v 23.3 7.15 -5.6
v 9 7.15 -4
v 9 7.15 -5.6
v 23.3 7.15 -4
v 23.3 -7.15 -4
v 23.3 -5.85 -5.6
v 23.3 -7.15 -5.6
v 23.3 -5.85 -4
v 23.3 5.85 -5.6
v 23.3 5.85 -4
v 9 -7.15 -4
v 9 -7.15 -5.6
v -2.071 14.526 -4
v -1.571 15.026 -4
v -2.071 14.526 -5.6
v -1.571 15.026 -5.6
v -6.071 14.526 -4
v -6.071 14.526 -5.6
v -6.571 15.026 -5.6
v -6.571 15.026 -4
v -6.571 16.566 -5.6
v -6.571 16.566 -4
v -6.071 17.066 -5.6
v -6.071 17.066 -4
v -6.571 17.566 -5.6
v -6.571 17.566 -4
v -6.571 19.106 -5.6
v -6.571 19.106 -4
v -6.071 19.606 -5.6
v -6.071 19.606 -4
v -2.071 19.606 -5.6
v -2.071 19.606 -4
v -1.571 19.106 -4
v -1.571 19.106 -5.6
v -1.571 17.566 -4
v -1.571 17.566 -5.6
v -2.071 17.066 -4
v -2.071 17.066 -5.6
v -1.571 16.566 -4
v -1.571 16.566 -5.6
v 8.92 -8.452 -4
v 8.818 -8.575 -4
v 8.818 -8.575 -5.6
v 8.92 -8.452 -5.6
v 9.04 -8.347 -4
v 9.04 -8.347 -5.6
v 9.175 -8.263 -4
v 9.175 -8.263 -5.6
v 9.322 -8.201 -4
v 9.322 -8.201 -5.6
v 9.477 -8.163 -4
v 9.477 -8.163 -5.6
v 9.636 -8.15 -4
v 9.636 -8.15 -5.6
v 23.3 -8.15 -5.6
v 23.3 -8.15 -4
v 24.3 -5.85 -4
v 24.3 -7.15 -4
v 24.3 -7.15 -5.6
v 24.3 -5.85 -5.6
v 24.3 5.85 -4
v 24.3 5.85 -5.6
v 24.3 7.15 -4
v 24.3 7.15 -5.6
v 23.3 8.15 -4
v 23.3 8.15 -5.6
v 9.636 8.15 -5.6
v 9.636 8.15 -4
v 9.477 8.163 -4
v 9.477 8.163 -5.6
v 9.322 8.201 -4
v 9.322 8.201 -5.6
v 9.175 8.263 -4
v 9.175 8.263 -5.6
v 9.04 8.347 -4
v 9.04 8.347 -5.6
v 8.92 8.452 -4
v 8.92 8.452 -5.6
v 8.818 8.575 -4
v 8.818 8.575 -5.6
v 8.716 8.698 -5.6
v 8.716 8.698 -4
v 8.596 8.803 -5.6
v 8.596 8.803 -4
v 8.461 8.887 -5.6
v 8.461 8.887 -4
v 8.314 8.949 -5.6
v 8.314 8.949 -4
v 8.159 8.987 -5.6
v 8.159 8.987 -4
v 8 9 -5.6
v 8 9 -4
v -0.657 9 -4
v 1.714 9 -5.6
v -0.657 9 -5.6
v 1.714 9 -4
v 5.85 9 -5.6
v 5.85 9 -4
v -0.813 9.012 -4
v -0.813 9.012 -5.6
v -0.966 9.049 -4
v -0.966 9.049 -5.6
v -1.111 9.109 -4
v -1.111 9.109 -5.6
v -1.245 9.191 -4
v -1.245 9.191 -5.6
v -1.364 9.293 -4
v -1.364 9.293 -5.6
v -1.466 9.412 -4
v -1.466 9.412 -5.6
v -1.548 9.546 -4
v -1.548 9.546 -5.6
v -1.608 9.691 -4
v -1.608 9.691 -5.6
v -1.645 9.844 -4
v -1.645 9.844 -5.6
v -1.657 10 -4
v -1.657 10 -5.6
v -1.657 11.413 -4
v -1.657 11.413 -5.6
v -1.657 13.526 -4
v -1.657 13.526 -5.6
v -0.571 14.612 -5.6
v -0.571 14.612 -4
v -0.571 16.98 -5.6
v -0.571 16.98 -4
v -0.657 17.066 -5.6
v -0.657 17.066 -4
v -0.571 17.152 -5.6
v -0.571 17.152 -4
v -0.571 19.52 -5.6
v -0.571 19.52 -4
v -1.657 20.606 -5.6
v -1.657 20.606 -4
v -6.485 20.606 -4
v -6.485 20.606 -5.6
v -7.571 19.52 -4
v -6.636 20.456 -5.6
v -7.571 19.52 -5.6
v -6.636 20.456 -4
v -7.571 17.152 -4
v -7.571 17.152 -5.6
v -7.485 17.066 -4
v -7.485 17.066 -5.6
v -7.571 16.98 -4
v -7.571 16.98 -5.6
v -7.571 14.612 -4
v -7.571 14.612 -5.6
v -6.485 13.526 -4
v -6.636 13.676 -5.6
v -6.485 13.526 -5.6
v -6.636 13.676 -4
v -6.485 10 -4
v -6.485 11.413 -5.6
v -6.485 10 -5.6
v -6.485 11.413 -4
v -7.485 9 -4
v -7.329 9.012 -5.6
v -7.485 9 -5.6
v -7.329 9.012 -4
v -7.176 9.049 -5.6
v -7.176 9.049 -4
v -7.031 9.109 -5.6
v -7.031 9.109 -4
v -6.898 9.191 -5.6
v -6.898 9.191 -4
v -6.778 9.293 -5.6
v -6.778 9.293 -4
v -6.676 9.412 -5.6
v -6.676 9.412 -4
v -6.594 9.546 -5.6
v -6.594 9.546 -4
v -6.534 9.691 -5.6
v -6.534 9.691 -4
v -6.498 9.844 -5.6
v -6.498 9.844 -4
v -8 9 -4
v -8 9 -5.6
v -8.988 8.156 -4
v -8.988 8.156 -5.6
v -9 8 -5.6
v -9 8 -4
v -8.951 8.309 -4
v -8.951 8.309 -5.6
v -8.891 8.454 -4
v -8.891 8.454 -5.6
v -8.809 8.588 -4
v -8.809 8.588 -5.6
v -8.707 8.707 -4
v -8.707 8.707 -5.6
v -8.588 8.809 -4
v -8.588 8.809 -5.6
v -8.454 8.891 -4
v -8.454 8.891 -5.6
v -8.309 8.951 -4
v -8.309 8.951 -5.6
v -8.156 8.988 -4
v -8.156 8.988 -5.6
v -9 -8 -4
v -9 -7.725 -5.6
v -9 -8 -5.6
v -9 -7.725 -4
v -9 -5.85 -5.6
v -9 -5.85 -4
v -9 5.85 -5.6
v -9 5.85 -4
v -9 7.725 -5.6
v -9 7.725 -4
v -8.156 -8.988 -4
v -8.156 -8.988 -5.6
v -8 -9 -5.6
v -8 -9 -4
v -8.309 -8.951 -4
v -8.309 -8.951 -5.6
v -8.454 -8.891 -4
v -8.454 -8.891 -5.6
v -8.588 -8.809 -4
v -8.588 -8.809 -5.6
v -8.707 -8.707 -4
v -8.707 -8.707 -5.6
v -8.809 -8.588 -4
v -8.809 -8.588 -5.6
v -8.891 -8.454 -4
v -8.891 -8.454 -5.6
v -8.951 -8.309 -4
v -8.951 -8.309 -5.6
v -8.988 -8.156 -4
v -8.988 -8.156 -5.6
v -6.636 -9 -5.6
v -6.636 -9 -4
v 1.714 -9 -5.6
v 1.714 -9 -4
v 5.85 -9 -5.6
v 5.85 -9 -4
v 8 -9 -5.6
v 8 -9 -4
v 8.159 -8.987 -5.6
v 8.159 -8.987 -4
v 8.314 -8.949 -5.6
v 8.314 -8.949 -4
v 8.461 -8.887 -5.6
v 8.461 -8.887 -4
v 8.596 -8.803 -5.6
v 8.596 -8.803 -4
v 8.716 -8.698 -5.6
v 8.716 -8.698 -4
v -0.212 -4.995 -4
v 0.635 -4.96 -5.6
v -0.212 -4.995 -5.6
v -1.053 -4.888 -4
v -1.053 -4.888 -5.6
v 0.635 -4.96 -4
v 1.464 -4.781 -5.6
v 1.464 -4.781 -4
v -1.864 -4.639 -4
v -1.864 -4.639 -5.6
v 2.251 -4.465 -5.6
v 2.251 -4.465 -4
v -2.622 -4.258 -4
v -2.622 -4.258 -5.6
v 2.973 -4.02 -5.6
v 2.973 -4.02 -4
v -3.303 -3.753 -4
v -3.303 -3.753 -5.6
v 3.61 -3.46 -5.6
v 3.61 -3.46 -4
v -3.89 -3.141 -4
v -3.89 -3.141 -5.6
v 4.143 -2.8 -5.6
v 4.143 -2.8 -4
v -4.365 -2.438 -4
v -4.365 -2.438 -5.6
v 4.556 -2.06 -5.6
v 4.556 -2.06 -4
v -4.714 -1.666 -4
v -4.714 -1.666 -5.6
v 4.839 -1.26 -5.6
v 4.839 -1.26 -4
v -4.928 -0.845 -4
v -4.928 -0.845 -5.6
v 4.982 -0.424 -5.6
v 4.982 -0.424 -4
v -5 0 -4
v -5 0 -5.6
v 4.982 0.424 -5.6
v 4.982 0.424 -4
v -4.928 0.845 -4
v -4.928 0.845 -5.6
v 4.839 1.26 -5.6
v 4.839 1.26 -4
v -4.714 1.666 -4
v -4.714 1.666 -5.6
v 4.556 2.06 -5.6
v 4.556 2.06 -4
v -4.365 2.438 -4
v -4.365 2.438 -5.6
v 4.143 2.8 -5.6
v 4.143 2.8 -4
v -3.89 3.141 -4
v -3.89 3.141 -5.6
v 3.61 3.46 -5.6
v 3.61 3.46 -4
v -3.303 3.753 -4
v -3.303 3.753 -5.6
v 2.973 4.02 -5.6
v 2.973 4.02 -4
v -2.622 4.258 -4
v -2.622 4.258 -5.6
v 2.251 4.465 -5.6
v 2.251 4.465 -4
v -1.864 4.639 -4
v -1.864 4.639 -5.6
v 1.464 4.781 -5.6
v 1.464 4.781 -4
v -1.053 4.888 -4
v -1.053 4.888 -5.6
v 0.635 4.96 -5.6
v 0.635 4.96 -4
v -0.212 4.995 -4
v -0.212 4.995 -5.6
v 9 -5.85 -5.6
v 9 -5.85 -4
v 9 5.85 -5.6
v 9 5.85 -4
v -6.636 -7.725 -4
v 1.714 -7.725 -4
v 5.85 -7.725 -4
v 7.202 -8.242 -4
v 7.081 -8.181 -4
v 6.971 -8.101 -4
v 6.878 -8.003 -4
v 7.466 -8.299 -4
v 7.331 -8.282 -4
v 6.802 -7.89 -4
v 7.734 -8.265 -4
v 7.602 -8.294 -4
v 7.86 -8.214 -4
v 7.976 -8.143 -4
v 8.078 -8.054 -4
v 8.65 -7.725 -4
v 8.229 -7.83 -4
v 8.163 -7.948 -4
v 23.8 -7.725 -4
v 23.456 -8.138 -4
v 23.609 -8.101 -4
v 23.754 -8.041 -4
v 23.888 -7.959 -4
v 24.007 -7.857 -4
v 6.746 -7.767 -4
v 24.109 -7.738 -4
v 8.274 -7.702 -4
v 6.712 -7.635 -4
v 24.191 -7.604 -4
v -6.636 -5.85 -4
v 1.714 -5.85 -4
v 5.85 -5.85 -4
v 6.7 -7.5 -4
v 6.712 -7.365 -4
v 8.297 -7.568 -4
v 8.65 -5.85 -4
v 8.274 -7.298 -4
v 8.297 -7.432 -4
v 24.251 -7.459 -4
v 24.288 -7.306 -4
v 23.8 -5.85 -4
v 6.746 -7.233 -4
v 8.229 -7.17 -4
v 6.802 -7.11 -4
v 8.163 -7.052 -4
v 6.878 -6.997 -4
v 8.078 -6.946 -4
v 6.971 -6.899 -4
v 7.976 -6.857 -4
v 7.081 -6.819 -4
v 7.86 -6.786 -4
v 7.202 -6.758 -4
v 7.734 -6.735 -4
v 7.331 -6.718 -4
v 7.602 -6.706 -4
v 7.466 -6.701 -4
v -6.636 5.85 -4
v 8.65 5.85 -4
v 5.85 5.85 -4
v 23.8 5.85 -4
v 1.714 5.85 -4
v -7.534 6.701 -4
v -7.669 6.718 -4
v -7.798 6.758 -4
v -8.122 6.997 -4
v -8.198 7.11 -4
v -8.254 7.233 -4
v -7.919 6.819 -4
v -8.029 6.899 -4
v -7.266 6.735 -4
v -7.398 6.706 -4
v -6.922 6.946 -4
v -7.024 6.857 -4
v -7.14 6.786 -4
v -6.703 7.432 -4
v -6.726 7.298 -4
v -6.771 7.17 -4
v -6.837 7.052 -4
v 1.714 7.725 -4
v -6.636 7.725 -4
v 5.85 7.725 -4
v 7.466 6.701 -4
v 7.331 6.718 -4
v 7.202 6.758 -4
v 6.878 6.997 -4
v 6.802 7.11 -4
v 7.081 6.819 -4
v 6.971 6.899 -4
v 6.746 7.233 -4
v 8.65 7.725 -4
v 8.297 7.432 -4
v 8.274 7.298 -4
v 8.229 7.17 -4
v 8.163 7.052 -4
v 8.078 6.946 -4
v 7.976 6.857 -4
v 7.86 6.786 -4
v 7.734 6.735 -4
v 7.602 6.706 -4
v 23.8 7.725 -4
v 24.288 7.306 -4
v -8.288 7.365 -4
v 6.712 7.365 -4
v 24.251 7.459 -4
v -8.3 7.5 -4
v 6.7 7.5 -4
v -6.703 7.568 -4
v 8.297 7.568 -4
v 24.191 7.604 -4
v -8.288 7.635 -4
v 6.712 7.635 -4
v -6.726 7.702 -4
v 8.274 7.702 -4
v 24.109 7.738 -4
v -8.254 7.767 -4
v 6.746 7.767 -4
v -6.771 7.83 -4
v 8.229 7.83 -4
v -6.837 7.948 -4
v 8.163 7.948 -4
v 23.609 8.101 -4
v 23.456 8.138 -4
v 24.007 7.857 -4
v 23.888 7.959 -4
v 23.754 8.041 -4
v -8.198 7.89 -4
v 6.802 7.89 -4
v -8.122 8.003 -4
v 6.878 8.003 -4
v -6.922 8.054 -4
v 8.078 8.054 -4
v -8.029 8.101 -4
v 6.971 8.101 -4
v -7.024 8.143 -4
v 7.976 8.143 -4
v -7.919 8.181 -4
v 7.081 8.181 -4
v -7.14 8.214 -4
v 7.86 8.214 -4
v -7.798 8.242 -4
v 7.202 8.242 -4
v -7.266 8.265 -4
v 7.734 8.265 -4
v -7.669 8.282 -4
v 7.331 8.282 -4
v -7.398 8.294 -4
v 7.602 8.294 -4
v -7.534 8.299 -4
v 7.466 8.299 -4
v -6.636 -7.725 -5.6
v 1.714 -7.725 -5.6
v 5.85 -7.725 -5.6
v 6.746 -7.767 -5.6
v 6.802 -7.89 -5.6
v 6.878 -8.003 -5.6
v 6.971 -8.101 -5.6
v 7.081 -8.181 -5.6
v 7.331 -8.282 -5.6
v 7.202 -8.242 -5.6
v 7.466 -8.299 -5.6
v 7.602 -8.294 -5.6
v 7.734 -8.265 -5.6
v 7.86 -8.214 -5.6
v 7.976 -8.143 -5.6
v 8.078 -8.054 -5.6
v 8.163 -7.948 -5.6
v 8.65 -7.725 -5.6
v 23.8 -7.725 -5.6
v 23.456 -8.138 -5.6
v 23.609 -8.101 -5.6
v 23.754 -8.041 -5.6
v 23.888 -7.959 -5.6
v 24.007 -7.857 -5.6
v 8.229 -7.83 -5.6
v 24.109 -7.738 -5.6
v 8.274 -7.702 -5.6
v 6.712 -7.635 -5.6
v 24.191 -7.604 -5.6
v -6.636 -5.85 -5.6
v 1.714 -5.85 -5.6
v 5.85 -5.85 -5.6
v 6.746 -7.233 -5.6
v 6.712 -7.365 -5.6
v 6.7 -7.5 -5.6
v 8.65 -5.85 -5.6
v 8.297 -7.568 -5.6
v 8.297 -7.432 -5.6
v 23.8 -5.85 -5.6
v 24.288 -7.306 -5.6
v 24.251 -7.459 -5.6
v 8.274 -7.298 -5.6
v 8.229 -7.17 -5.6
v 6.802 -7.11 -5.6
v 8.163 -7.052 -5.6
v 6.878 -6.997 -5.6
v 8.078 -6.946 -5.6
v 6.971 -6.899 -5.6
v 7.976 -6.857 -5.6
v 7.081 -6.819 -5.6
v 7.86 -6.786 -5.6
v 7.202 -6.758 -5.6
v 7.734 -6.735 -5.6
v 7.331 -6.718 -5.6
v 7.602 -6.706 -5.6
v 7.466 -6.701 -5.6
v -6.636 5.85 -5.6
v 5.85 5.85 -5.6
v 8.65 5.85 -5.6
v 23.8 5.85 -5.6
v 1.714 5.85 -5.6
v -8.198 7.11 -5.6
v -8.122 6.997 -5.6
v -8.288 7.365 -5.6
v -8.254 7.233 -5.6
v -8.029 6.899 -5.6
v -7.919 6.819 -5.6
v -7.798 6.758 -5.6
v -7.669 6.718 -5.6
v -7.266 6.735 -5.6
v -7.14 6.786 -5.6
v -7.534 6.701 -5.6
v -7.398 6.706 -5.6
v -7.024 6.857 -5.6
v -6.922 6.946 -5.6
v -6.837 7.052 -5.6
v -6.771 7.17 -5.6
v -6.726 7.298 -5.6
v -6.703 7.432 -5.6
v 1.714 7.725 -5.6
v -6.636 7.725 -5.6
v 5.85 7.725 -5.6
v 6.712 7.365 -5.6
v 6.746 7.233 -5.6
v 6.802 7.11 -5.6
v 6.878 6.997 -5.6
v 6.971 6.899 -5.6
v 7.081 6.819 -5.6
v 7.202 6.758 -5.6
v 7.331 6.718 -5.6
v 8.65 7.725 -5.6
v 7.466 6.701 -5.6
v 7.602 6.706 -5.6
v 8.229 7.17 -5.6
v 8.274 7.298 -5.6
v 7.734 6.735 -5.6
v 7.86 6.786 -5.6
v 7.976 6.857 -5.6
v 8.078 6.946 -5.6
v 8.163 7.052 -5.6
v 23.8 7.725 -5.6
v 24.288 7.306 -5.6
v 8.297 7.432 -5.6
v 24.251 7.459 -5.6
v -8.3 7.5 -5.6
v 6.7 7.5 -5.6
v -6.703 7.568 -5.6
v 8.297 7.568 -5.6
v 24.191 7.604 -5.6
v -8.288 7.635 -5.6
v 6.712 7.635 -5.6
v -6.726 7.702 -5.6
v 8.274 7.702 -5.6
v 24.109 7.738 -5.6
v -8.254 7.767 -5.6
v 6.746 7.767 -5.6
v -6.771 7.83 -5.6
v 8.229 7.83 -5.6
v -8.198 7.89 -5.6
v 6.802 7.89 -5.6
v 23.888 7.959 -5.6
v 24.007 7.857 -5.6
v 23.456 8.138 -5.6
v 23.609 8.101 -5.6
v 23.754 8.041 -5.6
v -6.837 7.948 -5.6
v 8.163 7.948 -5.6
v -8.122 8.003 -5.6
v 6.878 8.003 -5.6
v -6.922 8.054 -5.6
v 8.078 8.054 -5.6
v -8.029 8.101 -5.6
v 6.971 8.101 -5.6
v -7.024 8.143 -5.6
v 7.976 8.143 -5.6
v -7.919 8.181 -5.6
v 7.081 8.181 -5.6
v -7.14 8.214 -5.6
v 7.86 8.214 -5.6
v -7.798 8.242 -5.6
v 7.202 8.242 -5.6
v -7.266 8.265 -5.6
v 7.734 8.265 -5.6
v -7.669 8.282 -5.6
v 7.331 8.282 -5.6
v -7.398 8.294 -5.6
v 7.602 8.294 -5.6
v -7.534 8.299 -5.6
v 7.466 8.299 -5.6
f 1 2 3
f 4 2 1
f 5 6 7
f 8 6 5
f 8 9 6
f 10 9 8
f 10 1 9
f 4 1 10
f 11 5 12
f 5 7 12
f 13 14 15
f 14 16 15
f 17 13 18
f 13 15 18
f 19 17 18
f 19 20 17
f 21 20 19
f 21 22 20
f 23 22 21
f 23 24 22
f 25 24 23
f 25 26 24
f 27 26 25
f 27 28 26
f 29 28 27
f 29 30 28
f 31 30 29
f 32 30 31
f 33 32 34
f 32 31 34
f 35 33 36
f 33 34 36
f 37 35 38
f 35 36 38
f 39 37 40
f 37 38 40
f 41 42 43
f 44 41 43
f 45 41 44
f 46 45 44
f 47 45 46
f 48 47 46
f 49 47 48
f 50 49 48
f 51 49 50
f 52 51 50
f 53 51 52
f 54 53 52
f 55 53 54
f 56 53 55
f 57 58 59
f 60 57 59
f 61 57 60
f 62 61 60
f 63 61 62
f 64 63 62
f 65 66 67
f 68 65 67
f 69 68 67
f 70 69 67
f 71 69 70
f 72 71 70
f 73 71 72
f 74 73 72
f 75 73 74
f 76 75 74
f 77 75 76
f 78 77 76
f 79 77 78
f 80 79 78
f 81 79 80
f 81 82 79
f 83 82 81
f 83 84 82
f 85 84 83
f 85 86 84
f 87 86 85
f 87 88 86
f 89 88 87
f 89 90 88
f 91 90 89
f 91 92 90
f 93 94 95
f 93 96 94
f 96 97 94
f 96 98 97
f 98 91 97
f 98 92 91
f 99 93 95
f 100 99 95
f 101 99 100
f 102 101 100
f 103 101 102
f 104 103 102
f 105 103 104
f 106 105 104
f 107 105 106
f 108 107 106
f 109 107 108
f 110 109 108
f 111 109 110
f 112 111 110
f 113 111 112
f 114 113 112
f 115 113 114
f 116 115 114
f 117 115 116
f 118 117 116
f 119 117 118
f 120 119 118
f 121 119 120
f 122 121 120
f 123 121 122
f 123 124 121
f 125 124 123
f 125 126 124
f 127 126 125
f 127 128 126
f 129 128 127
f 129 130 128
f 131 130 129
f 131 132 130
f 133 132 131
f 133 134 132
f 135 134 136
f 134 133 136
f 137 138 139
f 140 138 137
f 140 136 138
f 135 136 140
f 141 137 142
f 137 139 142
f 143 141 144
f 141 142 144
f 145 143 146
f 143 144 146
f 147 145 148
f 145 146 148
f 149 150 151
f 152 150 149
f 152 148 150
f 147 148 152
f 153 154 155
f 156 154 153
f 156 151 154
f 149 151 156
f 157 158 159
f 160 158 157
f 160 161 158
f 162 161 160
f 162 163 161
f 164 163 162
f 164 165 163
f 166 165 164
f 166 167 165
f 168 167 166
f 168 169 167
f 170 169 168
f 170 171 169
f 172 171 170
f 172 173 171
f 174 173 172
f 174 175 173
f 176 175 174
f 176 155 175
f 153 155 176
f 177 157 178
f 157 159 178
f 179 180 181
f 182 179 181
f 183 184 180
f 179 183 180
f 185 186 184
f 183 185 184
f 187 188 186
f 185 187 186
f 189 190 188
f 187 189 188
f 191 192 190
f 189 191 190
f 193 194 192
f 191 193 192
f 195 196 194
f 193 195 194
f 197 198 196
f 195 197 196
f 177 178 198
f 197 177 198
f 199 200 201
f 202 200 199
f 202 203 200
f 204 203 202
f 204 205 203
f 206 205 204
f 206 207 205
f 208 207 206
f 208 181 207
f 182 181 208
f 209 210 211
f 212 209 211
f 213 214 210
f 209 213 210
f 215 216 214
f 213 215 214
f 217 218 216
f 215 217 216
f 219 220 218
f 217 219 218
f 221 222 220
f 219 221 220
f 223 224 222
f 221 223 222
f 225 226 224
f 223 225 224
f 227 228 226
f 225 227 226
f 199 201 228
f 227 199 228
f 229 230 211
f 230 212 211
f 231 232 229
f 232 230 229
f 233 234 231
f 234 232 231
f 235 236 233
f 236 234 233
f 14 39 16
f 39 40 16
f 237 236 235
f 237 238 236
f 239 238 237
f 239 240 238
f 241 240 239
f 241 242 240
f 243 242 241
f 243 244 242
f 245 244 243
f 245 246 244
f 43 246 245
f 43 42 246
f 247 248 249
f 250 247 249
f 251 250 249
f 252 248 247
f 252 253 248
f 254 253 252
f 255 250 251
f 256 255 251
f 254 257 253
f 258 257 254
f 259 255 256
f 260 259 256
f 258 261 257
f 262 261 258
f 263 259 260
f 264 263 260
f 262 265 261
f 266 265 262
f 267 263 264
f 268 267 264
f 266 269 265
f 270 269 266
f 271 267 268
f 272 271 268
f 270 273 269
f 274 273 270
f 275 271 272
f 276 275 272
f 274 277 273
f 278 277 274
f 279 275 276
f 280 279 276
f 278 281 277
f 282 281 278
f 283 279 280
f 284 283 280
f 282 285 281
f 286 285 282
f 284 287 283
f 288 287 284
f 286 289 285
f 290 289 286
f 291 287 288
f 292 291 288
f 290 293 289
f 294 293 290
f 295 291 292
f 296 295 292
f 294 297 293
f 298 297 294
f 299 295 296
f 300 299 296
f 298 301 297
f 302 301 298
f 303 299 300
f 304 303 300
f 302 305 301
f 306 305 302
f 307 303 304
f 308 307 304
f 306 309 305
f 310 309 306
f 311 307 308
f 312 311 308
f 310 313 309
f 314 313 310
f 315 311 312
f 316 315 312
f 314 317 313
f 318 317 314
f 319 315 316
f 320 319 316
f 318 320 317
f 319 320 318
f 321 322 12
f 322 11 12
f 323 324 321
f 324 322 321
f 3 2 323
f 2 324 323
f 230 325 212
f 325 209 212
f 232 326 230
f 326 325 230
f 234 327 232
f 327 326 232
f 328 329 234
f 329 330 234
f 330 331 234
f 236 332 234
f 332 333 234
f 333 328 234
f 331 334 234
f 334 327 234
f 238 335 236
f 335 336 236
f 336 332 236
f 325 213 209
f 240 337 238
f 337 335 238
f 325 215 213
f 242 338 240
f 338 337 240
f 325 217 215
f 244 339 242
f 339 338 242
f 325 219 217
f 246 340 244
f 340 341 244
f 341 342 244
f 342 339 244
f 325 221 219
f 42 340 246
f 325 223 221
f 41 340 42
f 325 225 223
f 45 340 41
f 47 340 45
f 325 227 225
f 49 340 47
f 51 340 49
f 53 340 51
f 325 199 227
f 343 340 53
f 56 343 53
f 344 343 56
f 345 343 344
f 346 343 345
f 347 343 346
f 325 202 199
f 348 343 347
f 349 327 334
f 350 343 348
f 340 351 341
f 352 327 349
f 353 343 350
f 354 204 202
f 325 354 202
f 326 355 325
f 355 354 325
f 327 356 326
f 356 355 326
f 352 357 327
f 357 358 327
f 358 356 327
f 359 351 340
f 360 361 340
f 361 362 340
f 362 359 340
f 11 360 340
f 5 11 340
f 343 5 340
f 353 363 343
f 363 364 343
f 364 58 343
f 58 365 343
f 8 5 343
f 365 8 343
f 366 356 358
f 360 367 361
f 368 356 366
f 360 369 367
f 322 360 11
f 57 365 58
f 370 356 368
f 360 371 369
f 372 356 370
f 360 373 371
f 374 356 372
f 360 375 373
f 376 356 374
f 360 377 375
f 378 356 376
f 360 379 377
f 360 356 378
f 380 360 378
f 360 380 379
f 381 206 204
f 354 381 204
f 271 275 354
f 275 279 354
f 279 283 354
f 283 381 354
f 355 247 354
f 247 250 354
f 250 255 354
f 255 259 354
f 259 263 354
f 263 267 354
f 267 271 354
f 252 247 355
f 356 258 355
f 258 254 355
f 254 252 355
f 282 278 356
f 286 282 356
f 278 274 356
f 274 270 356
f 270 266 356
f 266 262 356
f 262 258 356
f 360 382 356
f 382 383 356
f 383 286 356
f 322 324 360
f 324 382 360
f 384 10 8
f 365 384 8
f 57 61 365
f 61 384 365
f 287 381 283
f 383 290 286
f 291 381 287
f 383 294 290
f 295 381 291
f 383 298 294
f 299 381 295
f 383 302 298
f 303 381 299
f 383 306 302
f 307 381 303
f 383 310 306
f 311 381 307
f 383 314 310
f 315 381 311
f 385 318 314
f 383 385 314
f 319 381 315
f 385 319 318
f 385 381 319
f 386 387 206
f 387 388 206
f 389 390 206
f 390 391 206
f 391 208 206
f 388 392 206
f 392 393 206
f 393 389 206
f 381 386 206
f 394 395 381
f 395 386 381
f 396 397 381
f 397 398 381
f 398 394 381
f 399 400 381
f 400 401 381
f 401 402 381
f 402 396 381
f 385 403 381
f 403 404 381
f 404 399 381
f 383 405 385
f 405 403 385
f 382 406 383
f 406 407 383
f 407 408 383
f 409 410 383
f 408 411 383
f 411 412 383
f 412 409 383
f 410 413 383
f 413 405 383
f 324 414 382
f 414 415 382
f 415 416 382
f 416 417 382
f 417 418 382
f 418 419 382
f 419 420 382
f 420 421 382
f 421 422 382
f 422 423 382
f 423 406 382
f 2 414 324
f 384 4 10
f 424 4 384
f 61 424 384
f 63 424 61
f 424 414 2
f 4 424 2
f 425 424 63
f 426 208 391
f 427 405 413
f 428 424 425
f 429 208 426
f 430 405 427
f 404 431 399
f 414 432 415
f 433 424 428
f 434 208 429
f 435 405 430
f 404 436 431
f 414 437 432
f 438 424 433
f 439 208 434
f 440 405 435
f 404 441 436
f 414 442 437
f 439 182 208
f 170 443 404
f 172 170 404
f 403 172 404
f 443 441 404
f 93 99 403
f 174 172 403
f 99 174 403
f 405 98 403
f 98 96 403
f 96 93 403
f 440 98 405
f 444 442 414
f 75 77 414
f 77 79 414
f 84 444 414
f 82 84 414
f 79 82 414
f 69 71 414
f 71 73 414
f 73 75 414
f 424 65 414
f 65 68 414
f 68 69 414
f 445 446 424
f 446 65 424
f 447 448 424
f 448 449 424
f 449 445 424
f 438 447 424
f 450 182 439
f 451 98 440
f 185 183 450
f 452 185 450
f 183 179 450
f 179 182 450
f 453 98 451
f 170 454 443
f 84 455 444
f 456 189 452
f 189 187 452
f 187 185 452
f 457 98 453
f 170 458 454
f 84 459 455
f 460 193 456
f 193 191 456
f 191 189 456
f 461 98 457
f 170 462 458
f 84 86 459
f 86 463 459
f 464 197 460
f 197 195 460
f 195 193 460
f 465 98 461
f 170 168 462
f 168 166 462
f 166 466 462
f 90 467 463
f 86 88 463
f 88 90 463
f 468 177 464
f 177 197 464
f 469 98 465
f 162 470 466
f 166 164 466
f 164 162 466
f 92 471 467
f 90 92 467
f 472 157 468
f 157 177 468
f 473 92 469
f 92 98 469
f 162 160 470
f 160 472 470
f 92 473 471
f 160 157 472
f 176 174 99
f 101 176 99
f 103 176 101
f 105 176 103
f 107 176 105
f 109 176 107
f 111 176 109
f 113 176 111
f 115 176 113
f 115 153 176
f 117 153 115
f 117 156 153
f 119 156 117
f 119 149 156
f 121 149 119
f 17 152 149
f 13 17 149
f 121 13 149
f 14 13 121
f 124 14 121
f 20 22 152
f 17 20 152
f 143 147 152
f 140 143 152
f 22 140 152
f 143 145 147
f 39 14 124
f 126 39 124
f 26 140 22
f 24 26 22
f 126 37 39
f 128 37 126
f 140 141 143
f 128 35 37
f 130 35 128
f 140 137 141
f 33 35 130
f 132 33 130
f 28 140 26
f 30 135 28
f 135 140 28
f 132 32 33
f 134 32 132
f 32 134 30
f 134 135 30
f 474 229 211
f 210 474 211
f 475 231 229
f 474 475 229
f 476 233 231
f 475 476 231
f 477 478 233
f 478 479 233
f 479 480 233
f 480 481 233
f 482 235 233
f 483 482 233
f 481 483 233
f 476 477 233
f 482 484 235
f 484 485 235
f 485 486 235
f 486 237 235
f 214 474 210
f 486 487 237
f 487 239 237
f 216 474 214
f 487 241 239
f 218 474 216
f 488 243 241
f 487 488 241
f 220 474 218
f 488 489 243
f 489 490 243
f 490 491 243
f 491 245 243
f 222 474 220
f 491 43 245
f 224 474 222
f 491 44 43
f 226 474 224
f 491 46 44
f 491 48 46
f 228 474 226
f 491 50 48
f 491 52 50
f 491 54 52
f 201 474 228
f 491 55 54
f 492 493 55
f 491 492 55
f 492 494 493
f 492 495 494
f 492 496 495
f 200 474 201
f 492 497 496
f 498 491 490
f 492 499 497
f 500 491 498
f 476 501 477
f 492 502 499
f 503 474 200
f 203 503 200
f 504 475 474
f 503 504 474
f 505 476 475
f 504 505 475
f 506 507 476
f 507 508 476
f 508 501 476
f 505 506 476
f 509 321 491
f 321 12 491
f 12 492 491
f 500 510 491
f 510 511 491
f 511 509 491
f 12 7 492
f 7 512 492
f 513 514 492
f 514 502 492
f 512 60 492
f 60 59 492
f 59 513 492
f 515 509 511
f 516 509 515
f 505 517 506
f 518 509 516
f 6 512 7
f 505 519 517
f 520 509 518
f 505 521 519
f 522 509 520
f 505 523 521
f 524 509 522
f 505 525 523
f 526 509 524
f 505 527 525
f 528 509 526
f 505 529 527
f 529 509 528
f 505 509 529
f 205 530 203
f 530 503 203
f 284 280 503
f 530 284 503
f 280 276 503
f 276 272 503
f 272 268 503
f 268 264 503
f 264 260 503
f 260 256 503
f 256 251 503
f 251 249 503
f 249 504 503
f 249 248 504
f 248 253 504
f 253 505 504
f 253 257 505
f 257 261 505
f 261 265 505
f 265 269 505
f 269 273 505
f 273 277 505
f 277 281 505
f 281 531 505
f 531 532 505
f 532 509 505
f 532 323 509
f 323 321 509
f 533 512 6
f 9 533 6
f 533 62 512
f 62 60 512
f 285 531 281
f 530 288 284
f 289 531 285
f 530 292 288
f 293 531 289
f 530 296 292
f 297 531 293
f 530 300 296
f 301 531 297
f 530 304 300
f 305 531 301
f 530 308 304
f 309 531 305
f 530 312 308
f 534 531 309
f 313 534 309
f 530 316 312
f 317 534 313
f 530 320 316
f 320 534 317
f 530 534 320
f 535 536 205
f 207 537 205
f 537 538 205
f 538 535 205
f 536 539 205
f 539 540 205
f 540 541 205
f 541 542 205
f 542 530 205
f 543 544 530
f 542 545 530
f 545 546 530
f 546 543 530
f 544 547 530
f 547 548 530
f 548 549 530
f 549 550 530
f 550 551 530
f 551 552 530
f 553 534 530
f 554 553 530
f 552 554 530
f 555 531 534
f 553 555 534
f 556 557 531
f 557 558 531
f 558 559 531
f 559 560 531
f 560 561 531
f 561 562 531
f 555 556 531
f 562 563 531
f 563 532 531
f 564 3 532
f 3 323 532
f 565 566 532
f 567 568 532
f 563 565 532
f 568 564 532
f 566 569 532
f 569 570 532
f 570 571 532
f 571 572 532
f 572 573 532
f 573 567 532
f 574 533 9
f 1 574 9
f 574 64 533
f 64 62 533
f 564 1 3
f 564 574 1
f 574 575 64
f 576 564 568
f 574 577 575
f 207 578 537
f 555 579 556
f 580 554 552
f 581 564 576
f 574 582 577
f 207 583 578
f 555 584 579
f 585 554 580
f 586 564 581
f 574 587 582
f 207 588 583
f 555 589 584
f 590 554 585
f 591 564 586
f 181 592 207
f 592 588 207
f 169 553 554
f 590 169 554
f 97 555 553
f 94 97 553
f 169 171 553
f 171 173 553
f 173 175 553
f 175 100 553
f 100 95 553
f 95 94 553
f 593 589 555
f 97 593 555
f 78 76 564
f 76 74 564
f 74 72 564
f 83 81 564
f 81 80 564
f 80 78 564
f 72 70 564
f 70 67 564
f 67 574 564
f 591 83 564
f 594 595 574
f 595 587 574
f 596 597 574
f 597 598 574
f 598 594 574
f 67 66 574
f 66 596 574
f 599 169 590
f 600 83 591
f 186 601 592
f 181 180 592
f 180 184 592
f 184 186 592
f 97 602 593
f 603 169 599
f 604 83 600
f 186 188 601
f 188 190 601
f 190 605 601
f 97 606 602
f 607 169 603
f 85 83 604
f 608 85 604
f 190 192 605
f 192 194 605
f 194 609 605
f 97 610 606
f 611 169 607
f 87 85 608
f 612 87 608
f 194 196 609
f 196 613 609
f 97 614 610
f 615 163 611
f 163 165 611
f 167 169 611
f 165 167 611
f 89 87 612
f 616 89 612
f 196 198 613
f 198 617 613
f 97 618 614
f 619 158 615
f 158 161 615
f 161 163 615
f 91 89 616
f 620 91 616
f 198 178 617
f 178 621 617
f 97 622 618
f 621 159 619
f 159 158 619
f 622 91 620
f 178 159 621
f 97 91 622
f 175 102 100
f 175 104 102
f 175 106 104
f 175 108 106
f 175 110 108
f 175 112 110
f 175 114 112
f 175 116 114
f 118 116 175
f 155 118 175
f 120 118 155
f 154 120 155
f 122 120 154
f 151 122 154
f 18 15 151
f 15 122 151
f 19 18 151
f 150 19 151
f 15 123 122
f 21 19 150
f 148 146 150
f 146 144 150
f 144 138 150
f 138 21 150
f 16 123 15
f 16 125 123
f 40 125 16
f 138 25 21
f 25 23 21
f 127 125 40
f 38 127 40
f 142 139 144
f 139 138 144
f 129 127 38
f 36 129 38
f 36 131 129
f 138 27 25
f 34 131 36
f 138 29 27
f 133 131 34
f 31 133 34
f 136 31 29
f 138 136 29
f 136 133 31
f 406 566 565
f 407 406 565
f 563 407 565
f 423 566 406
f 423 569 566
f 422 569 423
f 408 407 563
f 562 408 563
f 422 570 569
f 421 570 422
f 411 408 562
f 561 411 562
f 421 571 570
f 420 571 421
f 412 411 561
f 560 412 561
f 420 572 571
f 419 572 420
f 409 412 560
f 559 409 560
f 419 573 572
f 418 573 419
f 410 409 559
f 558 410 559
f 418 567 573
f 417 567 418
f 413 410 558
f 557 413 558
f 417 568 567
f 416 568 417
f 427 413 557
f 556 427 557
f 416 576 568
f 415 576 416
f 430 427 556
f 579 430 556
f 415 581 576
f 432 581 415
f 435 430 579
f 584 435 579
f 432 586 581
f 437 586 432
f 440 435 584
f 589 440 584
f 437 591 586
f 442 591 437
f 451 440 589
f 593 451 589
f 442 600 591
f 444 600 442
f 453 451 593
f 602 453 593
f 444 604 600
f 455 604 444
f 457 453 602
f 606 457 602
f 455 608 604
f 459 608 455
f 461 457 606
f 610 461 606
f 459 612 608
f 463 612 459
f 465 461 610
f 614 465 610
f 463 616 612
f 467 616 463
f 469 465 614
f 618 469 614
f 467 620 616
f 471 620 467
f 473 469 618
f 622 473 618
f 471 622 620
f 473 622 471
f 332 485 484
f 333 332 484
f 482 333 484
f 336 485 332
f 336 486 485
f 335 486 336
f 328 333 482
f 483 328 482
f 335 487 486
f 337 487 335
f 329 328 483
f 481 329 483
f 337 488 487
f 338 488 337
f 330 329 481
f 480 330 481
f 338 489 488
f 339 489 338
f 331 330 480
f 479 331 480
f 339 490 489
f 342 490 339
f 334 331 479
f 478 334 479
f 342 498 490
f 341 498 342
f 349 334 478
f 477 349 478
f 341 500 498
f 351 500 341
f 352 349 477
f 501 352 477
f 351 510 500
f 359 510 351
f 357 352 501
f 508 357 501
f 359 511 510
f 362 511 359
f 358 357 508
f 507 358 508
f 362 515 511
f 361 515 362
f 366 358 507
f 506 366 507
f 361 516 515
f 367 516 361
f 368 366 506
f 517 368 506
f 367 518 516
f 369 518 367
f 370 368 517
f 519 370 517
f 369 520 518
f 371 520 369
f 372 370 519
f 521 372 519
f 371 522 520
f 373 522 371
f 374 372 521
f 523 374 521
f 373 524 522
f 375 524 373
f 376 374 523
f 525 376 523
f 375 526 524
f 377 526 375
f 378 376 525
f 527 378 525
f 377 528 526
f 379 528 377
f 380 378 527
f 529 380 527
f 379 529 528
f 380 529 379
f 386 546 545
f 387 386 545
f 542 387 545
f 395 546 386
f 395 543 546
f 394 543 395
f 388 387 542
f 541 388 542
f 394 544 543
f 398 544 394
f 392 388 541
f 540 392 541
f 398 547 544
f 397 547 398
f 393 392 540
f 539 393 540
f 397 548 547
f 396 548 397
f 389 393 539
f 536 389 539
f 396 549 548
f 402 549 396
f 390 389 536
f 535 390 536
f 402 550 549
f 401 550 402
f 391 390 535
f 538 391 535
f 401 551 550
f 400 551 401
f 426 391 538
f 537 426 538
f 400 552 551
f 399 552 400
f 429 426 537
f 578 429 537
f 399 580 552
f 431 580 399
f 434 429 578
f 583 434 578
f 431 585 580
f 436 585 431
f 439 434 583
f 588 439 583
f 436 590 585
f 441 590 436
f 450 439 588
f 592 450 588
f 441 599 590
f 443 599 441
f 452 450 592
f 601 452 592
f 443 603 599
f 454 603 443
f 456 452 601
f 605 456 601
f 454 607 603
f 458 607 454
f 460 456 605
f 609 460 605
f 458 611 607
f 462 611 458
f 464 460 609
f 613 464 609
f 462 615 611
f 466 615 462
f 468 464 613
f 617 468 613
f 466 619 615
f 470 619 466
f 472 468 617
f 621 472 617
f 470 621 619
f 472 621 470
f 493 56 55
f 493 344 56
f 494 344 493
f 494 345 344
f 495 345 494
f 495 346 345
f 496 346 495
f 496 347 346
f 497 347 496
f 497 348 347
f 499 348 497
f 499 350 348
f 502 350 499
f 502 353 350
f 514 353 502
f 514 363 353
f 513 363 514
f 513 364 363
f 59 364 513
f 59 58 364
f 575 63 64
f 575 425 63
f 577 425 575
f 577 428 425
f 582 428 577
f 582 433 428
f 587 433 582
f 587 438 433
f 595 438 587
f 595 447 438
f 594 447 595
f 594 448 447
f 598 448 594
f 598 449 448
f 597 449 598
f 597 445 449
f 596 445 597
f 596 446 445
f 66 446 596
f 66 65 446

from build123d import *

# Parameters (mm, degrees)
SKETCH2_R           = 5
BOSS_EXTRUDE1_DEPTH = 1.6
SKETCH4_R           = 0.8
CUT_EXTRUDE1_DEPTH  = 32.900742651
FILLET1_R           = 1


with BuildPart() as part:
    # Sketch2 → Boss-Extrude1 (new body)
    # profile 1 of 3: a face of its own
    with BuildSketch(Plane(origin=(0, 0, -5.6), x_dir=(-1, 0, 0), z_dir=(0, 0, -1))):
        with BuildLine():
            Line((-9, -8), (-9, -7.15))
            Line((-9, -7.15), (-23.3, -7.15))
            Line((-23.3, -7.15), (-23.3, 7.15))
            Line((-23.3, 7.15), (-9, 7.15))
            Line((-9, 7.15), (-9, 8))
            ThreePointArc((-9, 8), (-8.95345514, 8.3015349), (-8.818153409, 8.575))
            ThreePointArc((-8.818153409, 8.575), (-9.175329594, 8.262588033), (-9.636306817, 8.15))
            Line((-9.636306817, 8.15), (-24.3, 8.15))
            Line((-24.3, 8.15), (-24.3, -8.15))
            Line((-24.3, -8.15), (-9.636306817, -8.15))
            ThreePointArc((-9.636306817, -8.15), (-9.175329594, -8.262588033), (-8.818153409, -8.575))
            ThreePointArc((-8.818153409, -8.575), (-8.95345514, -8.3015349), (-9, -8))
        make_face()
    # profile 2 of 3: a face of its own
    with BuildSketch(Plane(origin=(0, 0, -5.6), x_dir=(-1, 0, 0), z_dir=(0, 0, -1))):
        with BuildLine():
            Line((-9, 7.15), (-9, -7.15))
            Line((-9, -7.15), (-9, -8))
            ThreePointArc((-9, -8), (-8.95345514, -8.3015349), (-8.818153409, -8.575))
            ThreePointArc((-8.818153409, -8.575), (-8.460977223, -8.887411967), (-8, -9))
            Line((-8, -9), (-2, -9))
            Line((-2, -9), (2, -9))
            Line((2, -9), (8, -9))
            ThreePointArc((8, -9), (8.707106781, -8.707106781), (9, -8))
            Line((9, -8), (9, -2))
            Line((9, -2), (9, 2))
            Line((9, 2), (9, 8))
            ThreePointArc((9, 8), (8.707106781, 8.707106781), (8, 9))
            Line((8, 9), (7.485413277, 9))
            Line((7.485413277, 9), (0.656986152, 9))
            Line((0.656986152, 9), (-2, 9))
            Line((-2, 9), (-8, 9))
            ThreePointArc((-8, 9), (-8.460977223, 8.887411967), (-8.818153409, 8.575))
            ThreePointArc((-8.818153409, 8.575), (-8.95345514, 8.3015349), (-9, 8))
            Line((-9, 8), (-9, 7.15))
        make_face()
        Circle(SKETCH2_R, mode=Mode.SUBTRACT)
    # profile 3 of 3: a face of its own
    with BuildSketch(Plane(origin=(0, 0, -5.6), x_dir=(-1, 0, 0), z_dir=(0, 0, -1))):
        with BuildLine():
            ThreePointArc((1.656986152, 10), (1.364092933, 9.292893219), (0.656986152, 9))
            Line((0.656986152, 9), (7.485413277, 9))
            ThreePointArc((7.485413277, 9), (6.778306496, 9.292893219), (6.485413277, 10))
            Line((6.485413277, 10), (6.485413277, 13.526003096))
            Line((6.485413277, 13.526003096), (7.571199814, 14.611789435))
            Line((7.571199814, 14.611789435), (7.571200029, 16.980216561))
            Line((7.571200029, 16.980216561), (7.4854136, 17.066003006))
            Line((7.4854136, 17.066003006), (7.571200045, 17.151789436))
            Line((7.571200045, 17.151789436), (7.57120026, 19.52021656))
            Line((7.57120026, 19.52021656), (6.485413922, 20.606003096))
            Line((6.485413922, 20.606003096), (1.656986797, 20.606003536))
            Line((1.656986797, 20.606003536), (0.57120026, 19.520217197))
            Line((0.57120026, 19.520217197), (0.571200045, 17.151790072))
            Line((0.571200045, 17.151790072), (0.656986475, 17.066003626))
            Line((0.656986475, 17.066003626), (0.571200029, 16.980217196))
            Line((0.571200029, 16.980217196), (0.571199814, 14.611790072))
            Line((0.571199814, 14.611790072), (1.656986152, 13.526003536))
            Line((1.656986152, 13.526003536), (1.656986152, 10))
        make_face()
        Polygon((1.571199851, 15.026003543), (1.571199991, 16.566003543), (2.071200036, 17.066003498), (1.571200082, 17.566003543), (1.571200223, 19.106003543), (2.071200268, 19.606003498), (6.071200269, 19.606003133), (6.571200223, 19.106003089), (6.571200082, 17.566003089), (6.071200038, 17.066003133), (6.571199991, 16.566003089), (6.571199851, 15.026003089), (6.071199806, 14.526003134), (2.071199805, 14.526003498), align=None, mode=Mode.SUBTRACT)
    extrude(amount=-BOSS_EXTRUDE1_DEPTH)

    # Sketch4 → Cut-Extrude1 (cut, through all)
    with BuildSketch(Plane(origin=(0, 0, -5.6), x_dir=(-1, 0, 0), z_dir=(0, 0, -1))):
        with Locations((-7.5, 7.5)):
            Circle(SKETCH4_R)
        with Locations((-7.5, -7.5)):
            Circle(SKETCH4_R)
        with Locations((7.5, 7.5)):
            Circle(SKETCH4_R)
    extrude(amount=-CUT_EXTRUDE1_DEPTH, mode=Mode.SUBTRACT)

    # Fillet1
    fillet1_edges = [part.edges().sort_by_distance(p)[0] for p in [
        (24.3, -8.15, -4.8),
        (24.3, 8.15, -4.8),
    ]]
    fillet(fillet1_edges, radius=FILLET1_R)


solid = part.part
